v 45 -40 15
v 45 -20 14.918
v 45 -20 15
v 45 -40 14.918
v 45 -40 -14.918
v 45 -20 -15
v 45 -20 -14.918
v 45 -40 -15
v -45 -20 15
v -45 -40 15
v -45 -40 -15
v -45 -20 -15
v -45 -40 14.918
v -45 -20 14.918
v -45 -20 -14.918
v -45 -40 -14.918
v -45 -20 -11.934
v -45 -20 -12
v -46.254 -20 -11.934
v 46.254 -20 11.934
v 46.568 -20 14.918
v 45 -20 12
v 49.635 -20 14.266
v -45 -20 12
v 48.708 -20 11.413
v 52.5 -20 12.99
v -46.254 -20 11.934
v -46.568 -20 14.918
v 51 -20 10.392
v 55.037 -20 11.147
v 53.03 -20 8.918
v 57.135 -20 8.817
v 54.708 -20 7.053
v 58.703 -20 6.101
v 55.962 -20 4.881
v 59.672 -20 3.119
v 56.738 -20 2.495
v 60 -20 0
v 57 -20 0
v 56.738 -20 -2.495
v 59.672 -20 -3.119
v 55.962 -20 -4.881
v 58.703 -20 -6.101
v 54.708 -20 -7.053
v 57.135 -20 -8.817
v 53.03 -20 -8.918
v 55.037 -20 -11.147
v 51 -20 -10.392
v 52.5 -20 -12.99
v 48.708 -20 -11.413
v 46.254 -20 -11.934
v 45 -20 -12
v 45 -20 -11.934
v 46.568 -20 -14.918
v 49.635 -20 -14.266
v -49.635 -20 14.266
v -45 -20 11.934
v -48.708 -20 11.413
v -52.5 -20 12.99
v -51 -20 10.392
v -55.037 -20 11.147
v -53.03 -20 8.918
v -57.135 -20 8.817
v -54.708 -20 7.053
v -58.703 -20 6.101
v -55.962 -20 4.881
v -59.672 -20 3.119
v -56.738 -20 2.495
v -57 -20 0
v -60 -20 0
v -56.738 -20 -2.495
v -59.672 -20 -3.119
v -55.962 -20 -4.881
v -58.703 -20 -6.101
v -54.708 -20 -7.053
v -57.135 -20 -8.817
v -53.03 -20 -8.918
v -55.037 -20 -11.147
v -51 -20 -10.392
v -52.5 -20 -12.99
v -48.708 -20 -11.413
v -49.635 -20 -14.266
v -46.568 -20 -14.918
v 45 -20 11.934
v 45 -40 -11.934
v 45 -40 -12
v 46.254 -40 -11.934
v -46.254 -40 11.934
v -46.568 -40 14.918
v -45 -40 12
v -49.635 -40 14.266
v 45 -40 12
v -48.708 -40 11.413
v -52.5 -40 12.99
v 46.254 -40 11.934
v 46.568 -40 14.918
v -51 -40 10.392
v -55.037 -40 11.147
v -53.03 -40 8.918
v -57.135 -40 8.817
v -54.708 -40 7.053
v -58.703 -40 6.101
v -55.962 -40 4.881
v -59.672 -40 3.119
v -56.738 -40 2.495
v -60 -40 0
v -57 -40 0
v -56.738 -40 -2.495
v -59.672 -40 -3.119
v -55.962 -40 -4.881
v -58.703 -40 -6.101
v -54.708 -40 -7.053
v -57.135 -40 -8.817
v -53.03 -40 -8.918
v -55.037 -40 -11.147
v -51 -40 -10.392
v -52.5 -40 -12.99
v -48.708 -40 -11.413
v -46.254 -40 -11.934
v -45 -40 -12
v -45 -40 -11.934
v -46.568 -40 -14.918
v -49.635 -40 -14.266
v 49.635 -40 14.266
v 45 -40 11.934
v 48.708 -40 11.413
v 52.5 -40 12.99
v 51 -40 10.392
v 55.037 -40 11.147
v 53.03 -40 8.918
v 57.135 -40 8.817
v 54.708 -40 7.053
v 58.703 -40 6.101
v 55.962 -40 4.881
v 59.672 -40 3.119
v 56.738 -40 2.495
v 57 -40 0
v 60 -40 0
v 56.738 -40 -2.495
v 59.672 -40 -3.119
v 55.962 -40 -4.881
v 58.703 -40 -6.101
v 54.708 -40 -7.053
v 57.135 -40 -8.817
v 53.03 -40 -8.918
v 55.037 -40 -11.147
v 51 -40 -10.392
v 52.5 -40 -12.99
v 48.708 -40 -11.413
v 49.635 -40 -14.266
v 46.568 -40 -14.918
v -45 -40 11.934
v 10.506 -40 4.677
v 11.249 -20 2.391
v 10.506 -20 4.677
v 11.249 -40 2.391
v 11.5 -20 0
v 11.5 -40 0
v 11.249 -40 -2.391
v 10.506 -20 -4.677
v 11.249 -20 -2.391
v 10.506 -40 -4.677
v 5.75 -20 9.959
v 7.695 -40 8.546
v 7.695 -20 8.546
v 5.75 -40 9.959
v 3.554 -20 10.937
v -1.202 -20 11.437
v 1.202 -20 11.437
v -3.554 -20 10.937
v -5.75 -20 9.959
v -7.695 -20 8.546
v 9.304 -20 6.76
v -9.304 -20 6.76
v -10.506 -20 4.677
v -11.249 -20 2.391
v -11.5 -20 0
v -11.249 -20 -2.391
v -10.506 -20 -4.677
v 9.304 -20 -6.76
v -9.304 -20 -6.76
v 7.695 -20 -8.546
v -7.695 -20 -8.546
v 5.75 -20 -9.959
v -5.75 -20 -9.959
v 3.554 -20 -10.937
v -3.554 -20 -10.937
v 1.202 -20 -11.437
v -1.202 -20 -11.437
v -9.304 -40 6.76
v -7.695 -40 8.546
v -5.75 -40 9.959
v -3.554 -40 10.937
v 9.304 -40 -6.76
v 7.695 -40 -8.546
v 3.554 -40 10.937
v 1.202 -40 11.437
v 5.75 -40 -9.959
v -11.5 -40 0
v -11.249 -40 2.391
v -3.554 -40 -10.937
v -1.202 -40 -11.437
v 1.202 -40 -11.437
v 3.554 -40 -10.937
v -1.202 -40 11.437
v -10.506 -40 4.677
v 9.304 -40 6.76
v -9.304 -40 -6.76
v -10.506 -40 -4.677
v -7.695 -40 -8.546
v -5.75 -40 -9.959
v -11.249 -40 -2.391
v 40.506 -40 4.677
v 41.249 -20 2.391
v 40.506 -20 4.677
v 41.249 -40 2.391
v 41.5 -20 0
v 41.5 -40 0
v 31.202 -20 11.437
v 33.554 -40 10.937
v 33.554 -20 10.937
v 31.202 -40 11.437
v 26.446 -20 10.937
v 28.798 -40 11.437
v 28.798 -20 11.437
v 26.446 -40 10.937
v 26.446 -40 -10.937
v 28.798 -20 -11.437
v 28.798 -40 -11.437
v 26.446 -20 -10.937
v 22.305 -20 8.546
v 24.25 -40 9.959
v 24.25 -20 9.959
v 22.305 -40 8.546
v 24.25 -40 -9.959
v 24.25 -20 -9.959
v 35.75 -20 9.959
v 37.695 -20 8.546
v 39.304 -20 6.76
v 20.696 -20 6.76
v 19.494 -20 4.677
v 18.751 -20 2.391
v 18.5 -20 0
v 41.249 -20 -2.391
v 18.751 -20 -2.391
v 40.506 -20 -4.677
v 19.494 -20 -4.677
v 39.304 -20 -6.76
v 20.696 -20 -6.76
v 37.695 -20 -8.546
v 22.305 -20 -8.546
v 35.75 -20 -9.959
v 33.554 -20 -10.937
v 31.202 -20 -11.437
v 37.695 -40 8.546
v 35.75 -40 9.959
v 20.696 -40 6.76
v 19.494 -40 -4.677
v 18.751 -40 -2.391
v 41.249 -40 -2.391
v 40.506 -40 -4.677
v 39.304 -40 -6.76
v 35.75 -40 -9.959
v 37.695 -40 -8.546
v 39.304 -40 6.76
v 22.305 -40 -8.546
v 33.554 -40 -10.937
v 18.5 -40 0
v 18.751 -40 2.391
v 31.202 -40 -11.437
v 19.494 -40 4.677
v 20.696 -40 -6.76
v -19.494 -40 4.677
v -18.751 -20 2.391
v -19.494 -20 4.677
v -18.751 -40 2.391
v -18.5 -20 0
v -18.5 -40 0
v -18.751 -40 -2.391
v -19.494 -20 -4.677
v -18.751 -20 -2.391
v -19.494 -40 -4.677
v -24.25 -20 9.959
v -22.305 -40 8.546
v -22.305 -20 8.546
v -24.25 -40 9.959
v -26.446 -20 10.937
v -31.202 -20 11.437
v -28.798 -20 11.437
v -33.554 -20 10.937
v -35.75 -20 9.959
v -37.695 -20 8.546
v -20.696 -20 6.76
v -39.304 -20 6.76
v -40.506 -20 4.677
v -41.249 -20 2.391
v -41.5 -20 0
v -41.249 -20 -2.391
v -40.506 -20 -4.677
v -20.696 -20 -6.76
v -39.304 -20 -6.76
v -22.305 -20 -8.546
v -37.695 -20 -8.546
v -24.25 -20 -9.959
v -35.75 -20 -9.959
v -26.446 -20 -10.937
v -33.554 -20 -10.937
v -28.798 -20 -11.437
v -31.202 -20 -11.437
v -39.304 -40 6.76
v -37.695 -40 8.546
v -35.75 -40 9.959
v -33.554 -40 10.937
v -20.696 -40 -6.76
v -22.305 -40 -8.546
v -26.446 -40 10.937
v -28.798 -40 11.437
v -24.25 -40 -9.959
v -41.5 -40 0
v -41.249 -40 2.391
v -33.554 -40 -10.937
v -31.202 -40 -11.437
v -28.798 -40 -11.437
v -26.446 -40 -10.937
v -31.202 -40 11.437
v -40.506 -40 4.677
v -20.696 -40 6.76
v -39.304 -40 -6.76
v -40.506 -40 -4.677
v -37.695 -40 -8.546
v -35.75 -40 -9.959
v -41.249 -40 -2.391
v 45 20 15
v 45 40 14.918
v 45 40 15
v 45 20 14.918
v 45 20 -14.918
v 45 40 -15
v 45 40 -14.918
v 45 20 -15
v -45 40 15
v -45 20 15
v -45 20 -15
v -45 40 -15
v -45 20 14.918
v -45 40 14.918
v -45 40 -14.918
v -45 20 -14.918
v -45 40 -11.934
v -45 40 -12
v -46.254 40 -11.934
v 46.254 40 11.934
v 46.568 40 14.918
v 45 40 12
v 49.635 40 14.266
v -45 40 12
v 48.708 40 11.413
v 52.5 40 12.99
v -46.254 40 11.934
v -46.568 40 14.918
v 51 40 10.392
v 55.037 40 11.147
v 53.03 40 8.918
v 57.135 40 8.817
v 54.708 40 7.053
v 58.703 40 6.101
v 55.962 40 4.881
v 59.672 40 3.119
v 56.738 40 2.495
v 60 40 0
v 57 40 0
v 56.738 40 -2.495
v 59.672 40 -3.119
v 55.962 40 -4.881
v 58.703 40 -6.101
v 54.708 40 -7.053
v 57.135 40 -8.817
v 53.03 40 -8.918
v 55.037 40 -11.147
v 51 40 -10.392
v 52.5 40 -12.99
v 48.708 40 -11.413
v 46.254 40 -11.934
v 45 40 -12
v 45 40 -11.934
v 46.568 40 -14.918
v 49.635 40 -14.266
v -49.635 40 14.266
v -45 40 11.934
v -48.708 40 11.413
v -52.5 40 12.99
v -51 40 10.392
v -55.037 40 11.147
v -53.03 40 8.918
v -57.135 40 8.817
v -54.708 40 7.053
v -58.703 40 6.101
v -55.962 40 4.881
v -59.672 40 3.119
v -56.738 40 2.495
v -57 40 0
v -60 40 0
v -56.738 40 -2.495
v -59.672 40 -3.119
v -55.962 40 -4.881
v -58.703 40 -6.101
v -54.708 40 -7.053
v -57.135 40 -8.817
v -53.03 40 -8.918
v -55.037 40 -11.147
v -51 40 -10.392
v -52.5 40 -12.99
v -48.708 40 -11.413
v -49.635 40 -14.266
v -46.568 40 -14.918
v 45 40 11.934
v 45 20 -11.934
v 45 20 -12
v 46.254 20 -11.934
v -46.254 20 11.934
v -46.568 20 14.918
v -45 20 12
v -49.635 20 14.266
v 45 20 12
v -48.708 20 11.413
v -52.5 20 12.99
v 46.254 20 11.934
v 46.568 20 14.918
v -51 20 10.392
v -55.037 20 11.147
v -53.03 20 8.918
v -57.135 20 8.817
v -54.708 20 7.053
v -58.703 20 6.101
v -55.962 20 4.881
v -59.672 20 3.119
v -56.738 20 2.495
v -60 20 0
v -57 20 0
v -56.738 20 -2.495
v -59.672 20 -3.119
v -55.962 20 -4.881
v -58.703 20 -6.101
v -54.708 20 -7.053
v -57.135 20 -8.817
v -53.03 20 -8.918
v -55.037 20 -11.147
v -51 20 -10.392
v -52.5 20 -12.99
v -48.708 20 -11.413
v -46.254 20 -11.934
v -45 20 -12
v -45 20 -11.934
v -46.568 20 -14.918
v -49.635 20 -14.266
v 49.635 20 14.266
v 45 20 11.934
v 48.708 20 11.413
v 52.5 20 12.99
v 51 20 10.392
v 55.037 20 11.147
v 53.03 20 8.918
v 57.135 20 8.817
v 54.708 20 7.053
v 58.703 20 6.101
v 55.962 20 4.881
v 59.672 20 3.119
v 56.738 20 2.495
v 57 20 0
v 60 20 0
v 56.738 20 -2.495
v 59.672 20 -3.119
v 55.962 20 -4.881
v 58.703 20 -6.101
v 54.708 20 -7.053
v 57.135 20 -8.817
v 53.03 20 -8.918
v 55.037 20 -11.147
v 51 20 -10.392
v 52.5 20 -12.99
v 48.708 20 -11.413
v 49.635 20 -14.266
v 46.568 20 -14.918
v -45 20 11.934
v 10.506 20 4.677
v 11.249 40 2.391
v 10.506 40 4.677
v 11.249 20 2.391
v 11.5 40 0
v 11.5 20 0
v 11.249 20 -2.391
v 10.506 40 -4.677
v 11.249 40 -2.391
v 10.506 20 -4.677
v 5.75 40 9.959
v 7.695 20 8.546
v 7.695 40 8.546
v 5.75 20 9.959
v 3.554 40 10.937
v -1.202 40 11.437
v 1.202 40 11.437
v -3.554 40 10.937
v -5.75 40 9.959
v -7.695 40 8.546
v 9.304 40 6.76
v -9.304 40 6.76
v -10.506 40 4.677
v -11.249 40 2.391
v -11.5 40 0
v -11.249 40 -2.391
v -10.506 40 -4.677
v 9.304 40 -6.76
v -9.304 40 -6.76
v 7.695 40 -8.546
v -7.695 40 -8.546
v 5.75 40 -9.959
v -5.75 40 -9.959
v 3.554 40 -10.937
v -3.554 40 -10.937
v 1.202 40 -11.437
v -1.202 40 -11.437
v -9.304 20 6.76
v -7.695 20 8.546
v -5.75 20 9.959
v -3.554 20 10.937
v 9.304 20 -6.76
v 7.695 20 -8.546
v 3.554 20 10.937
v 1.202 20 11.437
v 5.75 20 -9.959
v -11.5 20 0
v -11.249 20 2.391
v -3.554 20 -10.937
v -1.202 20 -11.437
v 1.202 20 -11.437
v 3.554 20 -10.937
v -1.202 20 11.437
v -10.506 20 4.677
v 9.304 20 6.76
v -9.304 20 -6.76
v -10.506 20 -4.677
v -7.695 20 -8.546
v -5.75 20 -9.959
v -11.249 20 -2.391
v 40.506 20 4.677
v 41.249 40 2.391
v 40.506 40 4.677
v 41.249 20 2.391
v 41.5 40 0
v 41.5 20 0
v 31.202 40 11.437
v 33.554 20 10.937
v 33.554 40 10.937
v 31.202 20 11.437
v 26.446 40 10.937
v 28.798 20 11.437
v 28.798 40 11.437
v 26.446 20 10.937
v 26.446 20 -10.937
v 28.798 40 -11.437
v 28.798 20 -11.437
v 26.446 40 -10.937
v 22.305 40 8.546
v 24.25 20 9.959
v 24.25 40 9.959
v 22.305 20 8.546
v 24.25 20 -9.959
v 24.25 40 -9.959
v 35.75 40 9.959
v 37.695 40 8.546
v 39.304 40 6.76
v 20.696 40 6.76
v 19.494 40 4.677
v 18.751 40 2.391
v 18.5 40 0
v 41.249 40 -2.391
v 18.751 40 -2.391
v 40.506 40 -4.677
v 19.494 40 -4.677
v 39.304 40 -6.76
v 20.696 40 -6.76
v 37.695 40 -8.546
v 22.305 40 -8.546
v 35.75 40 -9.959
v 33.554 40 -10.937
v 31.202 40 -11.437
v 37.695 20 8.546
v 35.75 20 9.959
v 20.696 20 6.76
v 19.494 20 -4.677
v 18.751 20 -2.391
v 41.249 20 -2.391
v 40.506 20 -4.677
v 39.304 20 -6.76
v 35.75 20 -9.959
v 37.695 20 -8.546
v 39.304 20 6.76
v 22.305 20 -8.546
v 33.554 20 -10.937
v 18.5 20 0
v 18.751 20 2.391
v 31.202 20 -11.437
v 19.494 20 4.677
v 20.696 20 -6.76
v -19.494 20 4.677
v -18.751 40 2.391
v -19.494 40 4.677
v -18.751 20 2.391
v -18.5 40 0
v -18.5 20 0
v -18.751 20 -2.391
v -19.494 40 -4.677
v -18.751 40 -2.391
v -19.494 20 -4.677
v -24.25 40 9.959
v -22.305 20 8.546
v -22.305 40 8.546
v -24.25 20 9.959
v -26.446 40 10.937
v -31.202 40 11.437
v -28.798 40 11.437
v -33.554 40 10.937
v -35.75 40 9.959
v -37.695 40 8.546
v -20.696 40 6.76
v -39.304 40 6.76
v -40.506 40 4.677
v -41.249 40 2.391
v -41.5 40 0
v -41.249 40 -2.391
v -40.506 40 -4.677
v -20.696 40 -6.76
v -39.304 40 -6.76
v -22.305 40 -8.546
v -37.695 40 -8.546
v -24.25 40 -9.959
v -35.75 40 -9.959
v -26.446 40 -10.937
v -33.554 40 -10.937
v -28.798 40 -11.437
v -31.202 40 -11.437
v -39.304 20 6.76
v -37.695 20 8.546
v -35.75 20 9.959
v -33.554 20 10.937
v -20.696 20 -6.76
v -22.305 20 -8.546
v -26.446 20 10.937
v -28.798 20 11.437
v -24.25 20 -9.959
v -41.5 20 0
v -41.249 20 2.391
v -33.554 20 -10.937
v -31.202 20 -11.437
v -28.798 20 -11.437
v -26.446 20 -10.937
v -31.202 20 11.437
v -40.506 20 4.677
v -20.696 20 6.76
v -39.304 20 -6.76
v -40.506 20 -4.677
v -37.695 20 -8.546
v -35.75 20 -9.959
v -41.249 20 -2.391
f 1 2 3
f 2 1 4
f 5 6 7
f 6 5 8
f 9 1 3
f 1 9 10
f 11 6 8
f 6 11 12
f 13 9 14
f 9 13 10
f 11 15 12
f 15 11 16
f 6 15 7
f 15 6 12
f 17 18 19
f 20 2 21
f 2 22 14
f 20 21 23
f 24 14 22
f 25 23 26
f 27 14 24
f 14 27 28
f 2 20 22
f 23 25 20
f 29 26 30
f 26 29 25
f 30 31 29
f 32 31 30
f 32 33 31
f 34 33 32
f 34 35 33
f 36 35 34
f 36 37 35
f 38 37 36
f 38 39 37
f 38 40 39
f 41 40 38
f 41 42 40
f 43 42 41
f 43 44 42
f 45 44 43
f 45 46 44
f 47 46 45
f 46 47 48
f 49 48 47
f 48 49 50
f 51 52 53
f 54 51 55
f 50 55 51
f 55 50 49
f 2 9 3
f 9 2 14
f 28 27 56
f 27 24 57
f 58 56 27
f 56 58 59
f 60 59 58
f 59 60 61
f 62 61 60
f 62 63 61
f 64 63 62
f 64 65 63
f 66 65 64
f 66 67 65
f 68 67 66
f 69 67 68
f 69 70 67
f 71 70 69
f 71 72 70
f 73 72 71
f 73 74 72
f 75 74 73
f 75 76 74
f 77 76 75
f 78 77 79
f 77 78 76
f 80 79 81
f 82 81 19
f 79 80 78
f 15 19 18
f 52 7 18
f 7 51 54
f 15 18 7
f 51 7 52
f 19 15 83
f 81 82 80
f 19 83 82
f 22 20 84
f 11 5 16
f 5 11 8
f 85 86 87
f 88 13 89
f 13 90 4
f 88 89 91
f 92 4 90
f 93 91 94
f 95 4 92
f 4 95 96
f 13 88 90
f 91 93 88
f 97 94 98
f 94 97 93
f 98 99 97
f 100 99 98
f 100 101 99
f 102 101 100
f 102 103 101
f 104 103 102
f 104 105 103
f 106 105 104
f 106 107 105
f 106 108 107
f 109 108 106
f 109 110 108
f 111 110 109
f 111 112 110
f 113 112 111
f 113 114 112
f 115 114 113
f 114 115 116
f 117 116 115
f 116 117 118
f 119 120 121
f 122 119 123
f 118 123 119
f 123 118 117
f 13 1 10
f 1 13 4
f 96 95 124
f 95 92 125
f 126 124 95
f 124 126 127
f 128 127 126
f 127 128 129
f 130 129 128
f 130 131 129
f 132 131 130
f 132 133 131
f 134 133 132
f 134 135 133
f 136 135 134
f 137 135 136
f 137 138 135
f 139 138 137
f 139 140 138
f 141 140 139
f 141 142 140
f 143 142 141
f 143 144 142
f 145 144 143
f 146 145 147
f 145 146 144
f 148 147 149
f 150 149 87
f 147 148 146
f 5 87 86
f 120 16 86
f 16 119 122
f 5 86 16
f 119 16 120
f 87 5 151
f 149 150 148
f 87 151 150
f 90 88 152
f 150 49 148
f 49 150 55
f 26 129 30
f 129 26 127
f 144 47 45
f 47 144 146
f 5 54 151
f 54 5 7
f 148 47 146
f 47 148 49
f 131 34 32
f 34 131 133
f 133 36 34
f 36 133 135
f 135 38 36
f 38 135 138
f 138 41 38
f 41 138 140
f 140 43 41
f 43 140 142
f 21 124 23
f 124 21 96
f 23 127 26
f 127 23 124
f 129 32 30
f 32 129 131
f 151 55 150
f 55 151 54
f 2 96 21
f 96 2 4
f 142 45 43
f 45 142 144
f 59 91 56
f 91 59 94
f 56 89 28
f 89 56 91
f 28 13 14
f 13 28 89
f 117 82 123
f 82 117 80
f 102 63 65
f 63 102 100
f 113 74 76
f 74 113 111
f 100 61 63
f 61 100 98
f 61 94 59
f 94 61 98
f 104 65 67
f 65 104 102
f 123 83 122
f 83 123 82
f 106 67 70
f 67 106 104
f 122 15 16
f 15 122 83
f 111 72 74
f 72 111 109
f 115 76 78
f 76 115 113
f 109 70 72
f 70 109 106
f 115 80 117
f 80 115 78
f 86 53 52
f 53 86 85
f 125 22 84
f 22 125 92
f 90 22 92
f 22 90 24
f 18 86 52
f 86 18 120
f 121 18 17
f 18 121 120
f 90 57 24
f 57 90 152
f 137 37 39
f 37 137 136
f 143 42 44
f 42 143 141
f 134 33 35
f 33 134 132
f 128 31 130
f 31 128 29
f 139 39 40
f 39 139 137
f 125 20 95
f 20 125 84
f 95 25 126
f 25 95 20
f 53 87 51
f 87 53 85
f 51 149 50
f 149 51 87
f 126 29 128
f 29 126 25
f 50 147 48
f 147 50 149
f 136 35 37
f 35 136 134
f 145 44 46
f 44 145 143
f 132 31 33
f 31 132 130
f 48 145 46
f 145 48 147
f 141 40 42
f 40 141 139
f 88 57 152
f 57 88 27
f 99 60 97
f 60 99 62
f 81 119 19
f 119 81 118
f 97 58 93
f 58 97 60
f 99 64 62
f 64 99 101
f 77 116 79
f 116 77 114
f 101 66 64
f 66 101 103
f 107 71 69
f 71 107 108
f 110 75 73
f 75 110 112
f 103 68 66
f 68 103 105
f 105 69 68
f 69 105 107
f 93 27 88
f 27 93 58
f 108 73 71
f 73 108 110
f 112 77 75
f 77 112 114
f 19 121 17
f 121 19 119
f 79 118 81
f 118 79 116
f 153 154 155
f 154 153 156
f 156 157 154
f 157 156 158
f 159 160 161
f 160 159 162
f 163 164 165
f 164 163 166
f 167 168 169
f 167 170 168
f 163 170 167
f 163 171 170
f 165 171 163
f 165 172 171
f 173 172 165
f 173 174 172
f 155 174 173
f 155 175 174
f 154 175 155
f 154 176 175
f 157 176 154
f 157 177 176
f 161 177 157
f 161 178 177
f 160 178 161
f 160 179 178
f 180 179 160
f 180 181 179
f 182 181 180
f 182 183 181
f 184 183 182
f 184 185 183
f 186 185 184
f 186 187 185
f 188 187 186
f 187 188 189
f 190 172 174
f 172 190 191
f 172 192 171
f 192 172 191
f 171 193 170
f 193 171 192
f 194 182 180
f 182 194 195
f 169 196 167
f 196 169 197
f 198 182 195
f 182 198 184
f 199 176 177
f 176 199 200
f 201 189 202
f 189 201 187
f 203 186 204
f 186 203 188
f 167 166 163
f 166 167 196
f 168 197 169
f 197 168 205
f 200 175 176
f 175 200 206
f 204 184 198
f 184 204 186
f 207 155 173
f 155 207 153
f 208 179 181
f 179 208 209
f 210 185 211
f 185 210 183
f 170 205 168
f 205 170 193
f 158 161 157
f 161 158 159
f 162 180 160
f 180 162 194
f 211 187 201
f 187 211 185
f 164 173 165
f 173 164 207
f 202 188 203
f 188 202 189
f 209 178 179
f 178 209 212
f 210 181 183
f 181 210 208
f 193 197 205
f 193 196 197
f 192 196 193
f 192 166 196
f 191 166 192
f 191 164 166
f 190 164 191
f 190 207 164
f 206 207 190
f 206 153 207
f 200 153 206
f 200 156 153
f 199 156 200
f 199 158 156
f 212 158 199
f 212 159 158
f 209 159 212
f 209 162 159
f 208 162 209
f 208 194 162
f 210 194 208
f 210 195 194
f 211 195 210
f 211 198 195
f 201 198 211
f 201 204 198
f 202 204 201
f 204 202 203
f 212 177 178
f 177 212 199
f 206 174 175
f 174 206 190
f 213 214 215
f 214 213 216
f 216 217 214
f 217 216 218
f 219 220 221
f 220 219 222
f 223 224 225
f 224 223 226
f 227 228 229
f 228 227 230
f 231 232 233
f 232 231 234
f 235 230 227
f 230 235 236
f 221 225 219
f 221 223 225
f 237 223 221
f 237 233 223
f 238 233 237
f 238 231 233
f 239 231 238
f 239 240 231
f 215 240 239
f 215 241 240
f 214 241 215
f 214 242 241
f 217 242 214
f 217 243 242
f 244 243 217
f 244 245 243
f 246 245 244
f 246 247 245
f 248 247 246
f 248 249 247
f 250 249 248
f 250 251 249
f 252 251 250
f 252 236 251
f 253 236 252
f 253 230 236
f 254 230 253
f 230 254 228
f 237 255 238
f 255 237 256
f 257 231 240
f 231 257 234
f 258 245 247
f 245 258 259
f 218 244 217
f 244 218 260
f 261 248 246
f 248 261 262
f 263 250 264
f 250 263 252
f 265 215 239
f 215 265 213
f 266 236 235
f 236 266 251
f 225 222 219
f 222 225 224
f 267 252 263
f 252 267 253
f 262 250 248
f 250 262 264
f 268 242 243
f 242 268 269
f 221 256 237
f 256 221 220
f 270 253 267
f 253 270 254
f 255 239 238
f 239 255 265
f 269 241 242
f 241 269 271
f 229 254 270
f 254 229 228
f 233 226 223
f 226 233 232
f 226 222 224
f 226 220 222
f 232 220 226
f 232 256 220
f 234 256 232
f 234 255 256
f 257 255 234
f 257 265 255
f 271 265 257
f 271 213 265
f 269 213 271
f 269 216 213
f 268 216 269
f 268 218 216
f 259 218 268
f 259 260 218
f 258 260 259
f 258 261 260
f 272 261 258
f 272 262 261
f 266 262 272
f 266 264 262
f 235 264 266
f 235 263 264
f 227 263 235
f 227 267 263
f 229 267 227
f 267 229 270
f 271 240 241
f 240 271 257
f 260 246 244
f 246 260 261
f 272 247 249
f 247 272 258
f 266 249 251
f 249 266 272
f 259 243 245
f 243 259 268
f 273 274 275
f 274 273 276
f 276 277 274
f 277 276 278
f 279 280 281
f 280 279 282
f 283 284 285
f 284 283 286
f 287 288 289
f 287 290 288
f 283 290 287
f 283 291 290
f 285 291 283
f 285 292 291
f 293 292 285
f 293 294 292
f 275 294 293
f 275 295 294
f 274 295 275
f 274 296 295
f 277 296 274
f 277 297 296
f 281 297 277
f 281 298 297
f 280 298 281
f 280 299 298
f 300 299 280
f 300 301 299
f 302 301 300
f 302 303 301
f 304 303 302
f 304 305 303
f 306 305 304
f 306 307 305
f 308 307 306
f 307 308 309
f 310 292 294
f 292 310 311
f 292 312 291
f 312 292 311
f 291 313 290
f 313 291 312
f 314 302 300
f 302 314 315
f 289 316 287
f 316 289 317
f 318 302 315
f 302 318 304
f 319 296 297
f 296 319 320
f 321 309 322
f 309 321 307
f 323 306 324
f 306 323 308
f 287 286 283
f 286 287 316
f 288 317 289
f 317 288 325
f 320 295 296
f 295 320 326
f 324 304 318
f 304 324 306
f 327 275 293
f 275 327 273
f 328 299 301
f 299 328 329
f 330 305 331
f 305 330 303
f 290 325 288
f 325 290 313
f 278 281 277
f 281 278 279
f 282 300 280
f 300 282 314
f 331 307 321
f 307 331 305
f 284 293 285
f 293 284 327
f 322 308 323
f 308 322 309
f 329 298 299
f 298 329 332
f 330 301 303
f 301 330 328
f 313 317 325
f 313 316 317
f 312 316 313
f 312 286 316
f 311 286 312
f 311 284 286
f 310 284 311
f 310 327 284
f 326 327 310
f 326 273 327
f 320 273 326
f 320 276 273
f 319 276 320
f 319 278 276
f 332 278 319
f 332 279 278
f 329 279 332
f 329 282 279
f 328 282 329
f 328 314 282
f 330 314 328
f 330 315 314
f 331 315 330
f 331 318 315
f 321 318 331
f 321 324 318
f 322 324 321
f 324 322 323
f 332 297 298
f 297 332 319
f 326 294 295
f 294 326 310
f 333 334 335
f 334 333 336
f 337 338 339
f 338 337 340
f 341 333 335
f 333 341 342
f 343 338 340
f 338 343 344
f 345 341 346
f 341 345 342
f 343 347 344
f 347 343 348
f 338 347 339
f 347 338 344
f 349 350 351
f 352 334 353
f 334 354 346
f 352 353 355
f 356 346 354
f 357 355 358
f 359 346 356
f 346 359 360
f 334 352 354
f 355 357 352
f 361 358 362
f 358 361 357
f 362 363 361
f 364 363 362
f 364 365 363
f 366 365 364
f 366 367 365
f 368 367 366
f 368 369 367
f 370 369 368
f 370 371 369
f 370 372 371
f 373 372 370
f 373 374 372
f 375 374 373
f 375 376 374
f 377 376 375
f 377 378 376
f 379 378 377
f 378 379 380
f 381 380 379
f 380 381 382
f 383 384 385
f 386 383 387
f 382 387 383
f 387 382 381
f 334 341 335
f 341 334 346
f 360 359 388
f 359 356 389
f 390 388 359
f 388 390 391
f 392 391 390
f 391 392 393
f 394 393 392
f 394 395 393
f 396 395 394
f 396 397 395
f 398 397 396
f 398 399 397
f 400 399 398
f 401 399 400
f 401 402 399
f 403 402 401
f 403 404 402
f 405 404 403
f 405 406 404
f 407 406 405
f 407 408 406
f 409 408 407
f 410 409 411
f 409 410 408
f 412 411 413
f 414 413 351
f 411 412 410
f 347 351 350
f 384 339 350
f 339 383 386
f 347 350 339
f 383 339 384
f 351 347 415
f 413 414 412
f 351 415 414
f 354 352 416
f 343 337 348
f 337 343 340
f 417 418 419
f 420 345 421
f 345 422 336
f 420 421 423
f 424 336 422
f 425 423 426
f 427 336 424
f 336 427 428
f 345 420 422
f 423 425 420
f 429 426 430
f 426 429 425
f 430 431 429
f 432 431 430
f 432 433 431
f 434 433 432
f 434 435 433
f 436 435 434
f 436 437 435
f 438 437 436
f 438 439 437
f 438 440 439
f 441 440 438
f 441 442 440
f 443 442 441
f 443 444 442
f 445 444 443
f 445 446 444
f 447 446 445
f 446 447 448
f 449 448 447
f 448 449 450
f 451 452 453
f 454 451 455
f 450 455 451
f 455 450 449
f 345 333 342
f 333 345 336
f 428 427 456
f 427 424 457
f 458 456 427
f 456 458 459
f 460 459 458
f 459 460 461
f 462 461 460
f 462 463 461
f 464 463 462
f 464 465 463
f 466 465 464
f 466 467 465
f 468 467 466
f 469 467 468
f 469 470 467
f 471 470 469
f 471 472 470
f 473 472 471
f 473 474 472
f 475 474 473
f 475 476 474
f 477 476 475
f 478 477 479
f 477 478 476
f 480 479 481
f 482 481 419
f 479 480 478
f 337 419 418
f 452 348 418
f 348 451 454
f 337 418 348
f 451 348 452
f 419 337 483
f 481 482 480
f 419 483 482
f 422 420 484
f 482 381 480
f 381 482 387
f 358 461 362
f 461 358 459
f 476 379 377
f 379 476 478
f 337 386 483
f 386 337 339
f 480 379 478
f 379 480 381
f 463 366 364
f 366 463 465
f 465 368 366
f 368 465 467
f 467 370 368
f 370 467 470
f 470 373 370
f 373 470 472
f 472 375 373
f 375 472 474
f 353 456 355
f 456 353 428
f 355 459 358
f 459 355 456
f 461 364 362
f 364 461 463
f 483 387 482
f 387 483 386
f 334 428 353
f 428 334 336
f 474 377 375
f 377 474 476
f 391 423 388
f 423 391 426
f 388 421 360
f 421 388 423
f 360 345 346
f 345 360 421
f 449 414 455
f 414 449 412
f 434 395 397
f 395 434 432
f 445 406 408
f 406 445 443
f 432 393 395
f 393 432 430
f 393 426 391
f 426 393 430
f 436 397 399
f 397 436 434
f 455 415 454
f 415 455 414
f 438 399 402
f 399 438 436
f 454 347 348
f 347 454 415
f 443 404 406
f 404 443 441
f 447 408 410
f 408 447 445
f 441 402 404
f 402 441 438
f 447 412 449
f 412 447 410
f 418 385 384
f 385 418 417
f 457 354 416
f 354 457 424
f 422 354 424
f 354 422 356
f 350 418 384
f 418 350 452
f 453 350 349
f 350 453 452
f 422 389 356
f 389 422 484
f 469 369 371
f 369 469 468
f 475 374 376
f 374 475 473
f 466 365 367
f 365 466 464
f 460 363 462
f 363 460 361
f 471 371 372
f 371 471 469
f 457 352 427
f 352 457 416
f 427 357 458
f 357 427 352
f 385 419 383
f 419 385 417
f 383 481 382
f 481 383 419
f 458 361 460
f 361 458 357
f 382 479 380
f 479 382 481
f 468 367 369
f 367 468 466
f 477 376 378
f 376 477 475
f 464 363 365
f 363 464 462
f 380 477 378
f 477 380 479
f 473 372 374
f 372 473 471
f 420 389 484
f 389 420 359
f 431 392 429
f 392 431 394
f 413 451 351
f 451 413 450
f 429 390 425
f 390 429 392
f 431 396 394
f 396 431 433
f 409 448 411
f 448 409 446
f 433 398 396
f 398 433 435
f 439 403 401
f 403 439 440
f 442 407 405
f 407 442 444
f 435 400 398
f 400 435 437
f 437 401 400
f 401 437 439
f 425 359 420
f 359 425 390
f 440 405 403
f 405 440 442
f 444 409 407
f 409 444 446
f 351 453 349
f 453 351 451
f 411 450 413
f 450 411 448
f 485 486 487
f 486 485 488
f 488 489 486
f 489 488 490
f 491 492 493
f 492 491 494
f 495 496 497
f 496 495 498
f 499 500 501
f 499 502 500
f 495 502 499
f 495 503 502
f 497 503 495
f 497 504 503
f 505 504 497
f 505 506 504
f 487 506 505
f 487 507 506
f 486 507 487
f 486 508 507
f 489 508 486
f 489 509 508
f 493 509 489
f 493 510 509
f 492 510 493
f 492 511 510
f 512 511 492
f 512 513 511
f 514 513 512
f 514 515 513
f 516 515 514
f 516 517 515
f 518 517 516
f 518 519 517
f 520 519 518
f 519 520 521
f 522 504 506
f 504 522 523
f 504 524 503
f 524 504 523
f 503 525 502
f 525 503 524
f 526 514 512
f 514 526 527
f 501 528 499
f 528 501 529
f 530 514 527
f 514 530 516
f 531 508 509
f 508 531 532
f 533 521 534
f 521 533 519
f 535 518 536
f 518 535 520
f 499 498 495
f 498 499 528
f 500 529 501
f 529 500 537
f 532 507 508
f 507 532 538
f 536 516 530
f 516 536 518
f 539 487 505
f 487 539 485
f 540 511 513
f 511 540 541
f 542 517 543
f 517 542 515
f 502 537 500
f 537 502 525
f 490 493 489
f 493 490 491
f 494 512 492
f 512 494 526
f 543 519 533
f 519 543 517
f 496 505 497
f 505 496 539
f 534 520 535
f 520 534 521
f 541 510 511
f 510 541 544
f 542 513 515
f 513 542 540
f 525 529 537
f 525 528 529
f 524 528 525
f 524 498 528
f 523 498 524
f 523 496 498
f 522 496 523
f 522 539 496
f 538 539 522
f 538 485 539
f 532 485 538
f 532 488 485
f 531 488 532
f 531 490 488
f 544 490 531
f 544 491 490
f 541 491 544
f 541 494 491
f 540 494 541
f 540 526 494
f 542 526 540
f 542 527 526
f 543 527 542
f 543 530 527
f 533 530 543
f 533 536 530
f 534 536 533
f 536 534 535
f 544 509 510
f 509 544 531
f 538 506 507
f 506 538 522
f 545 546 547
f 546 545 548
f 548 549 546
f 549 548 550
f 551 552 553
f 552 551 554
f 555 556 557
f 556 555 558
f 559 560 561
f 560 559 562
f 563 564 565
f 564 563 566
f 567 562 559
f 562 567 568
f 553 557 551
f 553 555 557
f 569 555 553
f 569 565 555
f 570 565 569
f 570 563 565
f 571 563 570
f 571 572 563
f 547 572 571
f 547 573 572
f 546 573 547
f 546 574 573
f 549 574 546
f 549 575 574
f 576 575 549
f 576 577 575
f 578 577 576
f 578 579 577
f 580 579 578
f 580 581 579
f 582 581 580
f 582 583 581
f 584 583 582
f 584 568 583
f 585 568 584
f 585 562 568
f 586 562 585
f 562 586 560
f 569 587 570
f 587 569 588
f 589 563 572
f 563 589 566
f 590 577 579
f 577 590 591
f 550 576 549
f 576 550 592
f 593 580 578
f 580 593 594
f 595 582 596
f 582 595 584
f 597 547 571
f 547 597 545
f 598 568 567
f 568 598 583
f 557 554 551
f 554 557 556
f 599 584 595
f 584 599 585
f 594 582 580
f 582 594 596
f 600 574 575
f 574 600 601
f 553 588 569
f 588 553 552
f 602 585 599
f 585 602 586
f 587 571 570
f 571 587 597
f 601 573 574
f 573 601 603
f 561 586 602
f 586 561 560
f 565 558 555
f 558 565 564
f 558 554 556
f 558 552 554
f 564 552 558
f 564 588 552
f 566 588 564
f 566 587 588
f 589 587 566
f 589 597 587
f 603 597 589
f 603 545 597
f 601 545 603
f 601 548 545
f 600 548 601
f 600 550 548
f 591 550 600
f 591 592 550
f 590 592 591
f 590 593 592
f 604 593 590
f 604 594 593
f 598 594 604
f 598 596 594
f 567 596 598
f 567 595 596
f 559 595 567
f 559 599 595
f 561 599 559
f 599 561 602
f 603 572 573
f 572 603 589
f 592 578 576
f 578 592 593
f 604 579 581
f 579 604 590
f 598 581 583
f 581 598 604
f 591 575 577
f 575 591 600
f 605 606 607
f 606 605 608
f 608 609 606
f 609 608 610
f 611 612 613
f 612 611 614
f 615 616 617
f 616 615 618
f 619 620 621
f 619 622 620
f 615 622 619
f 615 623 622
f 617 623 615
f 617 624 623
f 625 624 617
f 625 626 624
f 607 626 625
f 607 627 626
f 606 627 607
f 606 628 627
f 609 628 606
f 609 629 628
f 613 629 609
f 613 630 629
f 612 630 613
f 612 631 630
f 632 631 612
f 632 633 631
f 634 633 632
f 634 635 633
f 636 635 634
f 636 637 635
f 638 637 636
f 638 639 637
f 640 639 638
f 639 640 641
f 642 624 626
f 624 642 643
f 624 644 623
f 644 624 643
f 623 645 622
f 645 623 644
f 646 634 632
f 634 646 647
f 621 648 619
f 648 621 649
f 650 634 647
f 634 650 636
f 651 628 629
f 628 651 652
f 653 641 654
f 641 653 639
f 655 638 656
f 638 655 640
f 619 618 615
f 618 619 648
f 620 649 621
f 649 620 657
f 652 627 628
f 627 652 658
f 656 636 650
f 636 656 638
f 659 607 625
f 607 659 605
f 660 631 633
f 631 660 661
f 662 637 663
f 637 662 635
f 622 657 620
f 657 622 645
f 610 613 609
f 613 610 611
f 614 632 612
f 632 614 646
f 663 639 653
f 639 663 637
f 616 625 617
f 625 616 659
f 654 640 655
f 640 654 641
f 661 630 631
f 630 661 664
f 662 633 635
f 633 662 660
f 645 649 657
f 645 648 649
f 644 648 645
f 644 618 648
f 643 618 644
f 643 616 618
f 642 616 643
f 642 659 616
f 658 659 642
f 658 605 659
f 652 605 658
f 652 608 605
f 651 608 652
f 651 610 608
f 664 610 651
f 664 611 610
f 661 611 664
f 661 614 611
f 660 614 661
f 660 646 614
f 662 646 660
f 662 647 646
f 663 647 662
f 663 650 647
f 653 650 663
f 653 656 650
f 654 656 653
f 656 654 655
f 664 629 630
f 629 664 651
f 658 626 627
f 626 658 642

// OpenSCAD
// Tank dimensions
tank_length = 100;
tank_width = 60;
tank_height = 30;
track_width = 10;
track_height = 20;
track_length = tank_length * 0.9;




module track( track_length, track_width, track_height ){
     cube( [ track_length, track_width, track_height ], true );
     translate( [ track_length / 2, 0, 0 ] )
        wheel( track_width,track_height );
     translate( [ -track_length / 2, 0, 0 ] )
        wheel(track_width,track_height);
}

module wheel( track_width,track_height ){
         translate( [0, track_width/2, 0 ] )
         rotate( [ 90, 0, 0 ] ){
         cylinder( h = track_width, r = track_height / 2 );
    } 
}

module fulltrack( w, h, l ){

    difference(){
    track( l,w,tank_height );
    track( l,w + 1,tank_height * 0.8 );
    }
    
    wheel(w,h * 1.15);
    translate( [l/3,0, 0 ] )
    wheel(w,h * 1.15);
    translate( [-track_length/3,0, 0 ] )
    wheel(w,h * 1.15);
} 

module tracks(){


    translate( [ 0, -tank_width / 2, 0 ] )
        fulltrack( track_height, track_height, track_length);
    
    
    translate( [ 0, tank_width / 2, 0 ] )
        fulltrack( track_height, track_height, track_length);
    
}

module hull(){
    translate([0,0,tank_height/4]){
    cube([ tank_length,tank_width - track_width*2,tank_height/2], center = true);
    }
    translate([0,0,tank_height/1.5])
        cube([ tank_length,tank_width,tank_height/3], center = true);
}




tracks();
//hull();

//track_right();
